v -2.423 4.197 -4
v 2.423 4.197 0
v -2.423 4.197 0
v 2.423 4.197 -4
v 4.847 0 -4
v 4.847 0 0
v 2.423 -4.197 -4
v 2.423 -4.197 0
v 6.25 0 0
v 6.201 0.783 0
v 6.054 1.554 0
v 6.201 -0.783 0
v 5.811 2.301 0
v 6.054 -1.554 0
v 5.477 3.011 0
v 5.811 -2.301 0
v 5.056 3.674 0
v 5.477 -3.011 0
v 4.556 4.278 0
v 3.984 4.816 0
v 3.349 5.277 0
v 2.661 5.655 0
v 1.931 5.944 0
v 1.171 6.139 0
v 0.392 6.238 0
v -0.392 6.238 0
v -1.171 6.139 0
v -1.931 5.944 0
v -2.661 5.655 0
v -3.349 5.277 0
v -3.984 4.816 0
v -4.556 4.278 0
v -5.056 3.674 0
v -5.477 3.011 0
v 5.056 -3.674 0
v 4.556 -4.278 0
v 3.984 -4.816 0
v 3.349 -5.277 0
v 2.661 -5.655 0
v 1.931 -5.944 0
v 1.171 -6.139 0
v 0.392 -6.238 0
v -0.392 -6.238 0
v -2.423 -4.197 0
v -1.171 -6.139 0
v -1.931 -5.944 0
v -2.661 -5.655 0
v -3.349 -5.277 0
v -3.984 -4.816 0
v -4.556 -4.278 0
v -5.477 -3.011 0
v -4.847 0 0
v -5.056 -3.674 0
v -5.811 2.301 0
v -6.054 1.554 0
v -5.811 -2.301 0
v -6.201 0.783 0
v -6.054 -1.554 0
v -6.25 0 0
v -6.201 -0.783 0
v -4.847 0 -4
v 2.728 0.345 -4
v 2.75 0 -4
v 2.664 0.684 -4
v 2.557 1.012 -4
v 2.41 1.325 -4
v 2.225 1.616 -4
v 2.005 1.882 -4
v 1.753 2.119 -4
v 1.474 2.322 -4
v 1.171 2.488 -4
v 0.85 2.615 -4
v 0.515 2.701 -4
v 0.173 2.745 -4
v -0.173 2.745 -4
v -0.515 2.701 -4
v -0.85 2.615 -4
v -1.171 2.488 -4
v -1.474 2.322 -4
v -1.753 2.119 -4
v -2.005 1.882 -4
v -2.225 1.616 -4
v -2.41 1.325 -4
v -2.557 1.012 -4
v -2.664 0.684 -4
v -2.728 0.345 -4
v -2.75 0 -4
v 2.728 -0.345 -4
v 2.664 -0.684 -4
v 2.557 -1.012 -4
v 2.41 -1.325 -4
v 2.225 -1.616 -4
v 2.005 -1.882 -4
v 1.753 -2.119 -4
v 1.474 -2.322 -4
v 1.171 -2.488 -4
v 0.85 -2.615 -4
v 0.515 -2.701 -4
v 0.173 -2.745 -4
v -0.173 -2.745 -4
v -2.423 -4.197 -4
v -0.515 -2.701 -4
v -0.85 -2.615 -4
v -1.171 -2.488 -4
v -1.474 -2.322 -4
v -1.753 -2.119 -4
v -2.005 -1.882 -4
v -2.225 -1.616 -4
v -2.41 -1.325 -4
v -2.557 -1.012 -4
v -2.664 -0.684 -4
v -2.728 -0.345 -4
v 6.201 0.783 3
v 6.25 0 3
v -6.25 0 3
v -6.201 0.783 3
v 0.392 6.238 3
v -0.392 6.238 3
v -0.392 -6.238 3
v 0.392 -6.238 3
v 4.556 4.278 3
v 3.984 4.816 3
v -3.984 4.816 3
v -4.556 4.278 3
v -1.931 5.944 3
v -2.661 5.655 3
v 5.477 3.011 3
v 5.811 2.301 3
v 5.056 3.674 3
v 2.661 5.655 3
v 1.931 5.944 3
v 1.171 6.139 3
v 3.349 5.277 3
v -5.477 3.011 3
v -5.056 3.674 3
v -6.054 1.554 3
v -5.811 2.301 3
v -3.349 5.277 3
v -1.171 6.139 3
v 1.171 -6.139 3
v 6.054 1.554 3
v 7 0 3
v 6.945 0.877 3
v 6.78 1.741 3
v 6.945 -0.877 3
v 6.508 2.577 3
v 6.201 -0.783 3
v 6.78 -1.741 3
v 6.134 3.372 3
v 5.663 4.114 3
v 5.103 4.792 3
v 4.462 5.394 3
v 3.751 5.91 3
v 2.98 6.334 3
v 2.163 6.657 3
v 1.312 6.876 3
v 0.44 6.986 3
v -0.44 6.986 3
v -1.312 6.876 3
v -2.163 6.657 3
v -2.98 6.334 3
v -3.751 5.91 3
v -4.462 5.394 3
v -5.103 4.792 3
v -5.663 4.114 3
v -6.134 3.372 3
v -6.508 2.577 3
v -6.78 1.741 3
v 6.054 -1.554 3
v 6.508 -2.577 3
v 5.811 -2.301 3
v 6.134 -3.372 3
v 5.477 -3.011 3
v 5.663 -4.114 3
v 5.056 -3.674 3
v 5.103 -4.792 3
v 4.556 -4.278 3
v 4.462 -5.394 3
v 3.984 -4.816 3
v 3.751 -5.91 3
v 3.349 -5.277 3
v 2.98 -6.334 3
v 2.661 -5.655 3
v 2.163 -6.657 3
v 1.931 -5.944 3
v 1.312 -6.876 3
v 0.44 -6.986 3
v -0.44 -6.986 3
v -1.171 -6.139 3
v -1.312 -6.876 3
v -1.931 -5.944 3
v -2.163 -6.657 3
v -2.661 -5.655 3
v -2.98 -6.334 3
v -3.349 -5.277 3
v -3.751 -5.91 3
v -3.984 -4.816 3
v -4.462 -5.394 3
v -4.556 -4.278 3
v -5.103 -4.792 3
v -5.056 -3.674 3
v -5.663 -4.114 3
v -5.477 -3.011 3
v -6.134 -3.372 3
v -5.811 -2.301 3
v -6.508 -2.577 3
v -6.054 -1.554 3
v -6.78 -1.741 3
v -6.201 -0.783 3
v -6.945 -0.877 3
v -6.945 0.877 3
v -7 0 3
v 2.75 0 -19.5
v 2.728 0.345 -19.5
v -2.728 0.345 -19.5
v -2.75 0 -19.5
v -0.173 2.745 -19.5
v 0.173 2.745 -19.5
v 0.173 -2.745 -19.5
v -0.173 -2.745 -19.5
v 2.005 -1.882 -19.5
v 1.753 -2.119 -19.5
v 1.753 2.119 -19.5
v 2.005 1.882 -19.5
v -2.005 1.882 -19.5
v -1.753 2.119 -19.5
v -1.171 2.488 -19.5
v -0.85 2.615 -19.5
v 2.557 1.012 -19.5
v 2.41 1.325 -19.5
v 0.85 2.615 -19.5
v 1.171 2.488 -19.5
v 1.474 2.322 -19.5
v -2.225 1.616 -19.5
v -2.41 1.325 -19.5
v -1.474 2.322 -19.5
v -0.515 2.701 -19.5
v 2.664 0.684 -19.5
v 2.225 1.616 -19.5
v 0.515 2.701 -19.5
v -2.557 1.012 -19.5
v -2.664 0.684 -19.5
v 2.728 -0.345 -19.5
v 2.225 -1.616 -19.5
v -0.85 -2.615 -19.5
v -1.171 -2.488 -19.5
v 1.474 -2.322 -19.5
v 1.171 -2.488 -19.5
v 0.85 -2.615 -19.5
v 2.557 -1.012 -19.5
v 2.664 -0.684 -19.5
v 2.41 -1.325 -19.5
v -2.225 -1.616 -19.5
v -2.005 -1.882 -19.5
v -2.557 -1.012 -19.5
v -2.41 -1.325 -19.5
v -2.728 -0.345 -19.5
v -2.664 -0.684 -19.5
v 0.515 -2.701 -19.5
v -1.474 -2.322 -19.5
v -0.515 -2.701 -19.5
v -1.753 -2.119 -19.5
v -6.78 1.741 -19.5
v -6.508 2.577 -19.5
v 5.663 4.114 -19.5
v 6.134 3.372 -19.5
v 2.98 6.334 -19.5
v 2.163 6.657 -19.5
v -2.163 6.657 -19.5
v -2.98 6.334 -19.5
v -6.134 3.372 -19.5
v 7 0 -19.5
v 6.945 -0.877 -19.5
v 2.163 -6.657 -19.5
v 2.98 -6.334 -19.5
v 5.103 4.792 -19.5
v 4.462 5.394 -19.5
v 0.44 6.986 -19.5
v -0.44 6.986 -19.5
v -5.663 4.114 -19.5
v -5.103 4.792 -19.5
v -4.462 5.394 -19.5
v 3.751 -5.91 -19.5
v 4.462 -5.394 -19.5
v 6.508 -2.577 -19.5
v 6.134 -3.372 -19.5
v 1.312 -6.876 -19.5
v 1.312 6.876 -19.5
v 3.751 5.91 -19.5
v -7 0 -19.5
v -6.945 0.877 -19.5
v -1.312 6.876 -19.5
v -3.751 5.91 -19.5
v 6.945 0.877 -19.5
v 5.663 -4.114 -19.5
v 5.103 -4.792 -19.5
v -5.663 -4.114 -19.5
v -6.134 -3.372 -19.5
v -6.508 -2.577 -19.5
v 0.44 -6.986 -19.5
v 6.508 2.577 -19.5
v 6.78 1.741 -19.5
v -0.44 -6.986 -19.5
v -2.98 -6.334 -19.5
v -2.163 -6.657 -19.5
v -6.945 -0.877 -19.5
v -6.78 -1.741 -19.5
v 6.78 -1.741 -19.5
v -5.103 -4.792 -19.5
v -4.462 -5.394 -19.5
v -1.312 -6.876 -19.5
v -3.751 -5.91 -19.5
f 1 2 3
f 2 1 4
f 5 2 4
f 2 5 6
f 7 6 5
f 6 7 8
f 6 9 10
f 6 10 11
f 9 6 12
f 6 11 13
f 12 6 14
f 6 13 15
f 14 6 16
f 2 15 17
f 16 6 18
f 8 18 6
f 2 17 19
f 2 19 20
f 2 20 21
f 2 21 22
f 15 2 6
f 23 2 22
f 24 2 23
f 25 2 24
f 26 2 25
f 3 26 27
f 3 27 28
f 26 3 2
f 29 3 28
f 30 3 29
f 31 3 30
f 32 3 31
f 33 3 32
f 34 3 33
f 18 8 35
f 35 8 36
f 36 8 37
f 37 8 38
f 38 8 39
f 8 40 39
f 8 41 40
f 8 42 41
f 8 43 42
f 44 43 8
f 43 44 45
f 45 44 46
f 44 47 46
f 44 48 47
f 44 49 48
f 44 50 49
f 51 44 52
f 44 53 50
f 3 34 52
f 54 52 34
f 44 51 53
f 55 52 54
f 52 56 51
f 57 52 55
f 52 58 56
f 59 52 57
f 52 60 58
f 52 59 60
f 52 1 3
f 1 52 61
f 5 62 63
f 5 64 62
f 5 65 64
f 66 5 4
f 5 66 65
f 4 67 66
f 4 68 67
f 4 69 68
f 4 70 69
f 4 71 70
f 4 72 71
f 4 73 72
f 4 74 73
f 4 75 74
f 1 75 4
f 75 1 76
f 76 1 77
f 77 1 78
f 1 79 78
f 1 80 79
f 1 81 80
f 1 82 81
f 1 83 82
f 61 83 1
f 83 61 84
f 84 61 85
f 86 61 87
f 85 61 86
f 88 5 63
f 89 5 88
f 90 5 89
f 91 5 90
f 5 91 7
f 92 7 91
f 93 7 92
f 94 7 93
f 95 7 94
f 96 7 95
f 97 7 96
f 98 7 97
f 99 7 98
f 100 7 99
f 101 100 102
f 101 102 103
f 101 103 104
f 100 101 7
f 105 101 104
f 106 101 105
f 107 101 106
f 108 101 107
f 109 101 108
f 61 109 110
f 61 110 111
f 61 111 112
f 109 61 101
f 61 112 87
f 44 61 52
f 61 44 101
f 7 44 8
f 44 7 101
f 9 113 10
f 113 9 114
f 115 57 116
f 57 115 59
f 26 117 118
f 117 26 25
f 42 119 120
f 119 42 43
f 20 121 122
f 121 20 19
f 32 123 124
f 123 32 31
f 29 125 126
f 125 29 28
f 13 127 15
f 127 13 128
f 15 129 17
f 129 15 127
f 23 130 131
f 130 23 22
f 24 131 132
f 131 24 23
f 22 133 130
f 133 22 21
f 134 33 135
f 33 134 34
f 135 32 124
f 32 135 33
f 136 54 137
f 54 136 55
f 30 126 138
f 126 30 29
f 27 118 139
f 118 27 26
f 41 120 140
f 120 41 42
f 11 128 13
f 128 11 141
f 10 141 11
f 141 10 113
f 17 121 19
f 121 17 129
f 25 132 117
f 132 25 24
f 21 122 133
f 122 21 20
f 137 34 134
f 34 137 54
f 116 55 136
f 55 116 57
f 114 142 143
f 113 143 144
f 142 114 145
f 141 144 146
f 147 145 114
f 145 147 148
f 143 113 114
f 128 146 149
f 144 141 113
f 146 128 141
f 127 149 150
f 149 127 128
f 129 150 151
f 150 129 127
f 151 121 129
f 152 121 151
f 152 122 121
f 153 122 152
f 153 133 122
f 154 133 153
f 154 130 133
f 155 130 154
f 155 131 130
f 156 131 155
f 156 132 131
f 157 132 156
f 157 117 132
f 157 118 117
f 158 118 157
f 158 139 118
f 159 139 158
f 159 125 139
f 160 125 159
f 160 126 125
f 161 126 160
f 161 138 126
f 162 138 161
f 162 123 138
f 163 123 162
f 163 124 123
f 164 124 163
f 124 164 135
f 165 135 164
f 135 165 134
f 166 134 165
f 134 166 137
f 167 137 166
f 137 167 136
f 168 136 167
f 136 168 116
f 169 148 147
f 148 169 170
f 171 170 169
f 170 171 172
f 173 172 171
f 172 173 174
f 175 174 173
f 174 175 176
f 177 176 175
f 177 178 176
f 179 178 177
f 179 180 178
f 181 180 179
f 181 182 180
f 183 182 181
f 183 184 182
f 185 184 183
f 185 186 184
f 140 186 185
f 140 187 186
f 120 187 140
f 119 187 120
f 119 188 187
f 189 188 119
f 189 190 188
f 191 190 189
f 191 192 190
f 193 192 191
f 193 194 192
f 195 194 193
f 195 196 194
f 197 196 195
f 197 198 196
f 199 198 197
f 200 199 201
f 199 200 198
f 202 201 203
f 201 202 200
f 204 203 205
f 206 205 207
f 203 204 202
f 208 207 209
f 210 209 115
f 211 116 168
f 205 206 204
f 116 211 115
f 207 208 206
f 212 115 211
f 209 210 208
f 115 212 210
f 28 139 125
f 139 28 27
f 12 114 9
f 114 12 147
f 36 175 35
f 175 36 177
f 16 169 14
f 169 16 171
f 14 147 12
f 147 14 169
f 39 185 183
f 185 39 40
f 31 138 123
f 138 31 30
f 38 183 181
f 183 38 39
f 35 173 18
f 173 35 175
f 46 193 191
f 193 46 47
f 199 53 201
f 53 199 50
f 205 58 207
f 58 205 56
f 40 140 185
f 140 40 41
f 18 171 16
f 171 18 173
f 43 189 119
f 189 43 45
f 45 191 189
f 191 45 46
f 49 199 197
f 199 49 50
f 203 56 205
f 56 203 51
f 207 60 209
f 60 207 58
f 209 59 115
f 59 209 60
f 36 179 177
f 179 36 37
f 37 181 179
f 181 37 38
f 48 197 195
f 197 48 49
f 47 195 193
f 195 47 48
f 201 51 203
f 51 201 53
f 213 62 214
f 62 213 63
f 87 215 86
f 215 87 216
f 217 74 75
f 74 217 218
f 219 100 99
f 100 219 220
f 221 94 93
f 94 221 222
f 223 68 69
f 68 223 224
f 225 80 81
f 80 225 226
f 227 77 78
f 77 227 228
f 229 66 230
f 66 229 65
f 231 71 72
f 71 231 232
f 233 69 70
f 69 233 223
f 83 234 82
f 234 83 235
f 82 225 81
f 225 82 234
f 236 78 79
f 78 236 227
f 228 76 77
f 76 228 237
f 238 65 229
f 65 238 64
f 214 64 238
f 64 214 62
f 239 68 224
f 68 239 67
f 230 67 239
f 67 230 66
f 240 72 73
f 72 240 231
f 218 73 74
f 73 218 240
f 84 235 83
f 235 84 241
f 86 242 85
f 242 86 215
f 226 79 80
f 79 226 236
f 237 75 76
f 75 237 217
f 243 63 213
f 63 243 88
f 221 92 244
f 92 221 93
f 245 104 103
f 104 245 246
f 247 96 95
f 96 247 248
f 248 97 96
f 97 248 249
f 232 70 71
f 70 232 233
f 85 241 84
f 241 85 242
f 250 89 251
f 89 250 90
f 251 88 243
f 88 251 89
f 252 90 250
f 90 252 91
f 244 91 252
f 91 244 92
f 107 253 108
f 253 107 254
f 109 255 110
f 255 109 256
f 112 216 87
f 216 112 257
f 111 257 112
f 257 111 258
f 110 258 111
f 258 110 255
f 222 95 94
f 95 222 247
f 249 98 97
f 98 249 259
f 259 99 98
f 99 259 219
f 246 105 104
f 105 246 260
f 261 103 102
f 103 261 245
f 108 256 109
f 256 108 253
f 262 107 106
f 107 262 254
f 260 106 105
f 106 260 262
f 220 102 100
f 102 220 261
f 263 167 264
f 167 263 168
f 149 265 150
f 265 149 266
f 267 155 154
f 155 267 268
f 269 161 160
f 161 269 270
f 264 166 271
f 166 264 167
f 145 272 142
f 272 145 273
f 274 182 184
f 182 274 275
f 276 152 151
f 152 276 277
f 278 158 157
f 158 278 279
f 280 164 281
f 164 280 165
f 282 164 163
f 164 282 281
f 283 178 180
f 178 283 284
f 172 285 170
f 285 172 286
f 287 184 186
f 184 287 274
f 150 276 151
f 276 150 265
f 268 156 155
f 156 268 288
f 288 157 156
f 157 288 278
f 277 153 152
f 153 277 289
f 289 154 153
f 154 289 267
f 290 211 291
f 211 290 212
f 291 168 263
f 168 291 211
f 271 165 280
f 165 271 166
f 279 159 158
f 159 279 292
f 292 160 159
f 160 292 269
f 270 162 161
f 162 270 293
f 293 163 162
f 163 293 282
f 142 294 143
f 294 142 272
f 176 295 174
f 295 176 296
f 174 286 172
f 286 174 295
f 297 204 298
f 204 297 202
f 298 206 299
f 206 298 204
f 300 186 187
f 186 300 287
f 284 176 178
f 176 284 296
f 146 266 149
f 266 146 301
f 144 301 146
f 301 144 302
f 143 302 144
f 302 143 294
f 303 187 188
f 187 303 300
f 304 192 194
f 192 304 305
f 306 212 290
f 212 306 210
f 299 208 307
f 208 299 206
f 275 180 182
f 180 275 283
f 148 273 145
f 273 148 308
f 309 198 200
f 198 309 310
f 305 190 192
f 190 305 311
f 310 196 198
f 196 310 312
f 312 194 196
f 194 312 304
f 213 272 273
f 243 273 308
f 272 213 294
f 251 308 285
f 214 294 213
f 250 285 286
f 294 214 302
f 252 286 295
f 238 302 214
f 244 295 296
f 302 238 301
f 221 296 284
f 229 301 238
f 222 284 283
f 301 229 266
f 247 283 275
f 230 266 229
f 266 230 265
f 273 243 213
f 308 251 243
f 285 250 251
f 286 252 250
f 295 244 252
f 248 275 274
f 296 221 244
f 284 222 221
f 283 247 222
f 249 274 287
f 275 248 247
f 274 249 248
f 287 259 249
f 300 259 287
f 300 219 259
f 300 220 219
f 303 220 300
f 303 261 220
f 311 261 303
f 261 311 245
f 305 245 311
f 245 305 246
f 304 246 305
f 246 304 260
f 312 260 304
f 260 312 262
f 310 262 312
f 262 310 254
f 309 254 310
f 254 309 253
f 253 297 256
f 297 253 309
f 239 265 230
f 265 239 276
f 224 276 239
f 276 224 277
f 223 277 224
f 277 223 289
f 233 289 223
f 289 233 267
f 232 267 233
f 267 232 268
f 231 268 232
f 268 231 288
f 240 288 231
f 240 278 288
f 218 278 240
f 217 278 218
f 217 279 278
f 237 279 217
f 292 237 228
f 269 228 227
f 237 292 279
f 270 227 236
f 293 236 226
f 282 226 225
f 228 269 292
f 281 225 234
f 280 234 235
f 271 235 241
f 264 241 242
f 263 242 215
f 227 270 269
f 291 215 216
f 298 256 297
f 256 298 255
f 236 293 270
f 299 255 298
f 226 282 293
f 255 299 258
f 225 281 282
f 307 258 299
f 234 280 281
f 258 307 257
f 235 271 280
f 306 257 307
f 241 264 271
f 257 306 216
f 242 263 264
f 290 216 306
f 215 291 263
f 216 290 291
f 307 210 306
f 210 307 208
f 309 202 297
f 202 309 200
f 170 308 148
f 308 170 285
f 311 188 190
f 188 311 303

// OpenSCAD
$fn = 50;

difference() {
	union() {
		translate(v = [0, 0, -19.5]) {
			cylinder(h = 22.5, r = 7.0);
		}
	}
	union() {
		translate(v = [0, 0, 0]) {
			rotate(a = [0, 0, 0]) {
				difference() {
					union() {
						translate(v = [0, 0, -4]) {
							linear_extrude(height = 4) {
								polygon(points = [[4.8468, 0.0], [2.4234000000000004, 4.197451927062417], [-2.423399999999999, 4.197451927062417], [-4.8468, 5.935618106107392e-16], [-2.423400000000002, -4.197451927062416], [2.423399999999997, -4.197451927062419]]);
							}
						}
					}
					union();
				}
			}
		}
		#cylinder(h = 3, r = 6.25);
		#translate(v = [0, 0, -100.0]) {
			cylinder(h = 200, r = 2.75);
		}
	}
}
